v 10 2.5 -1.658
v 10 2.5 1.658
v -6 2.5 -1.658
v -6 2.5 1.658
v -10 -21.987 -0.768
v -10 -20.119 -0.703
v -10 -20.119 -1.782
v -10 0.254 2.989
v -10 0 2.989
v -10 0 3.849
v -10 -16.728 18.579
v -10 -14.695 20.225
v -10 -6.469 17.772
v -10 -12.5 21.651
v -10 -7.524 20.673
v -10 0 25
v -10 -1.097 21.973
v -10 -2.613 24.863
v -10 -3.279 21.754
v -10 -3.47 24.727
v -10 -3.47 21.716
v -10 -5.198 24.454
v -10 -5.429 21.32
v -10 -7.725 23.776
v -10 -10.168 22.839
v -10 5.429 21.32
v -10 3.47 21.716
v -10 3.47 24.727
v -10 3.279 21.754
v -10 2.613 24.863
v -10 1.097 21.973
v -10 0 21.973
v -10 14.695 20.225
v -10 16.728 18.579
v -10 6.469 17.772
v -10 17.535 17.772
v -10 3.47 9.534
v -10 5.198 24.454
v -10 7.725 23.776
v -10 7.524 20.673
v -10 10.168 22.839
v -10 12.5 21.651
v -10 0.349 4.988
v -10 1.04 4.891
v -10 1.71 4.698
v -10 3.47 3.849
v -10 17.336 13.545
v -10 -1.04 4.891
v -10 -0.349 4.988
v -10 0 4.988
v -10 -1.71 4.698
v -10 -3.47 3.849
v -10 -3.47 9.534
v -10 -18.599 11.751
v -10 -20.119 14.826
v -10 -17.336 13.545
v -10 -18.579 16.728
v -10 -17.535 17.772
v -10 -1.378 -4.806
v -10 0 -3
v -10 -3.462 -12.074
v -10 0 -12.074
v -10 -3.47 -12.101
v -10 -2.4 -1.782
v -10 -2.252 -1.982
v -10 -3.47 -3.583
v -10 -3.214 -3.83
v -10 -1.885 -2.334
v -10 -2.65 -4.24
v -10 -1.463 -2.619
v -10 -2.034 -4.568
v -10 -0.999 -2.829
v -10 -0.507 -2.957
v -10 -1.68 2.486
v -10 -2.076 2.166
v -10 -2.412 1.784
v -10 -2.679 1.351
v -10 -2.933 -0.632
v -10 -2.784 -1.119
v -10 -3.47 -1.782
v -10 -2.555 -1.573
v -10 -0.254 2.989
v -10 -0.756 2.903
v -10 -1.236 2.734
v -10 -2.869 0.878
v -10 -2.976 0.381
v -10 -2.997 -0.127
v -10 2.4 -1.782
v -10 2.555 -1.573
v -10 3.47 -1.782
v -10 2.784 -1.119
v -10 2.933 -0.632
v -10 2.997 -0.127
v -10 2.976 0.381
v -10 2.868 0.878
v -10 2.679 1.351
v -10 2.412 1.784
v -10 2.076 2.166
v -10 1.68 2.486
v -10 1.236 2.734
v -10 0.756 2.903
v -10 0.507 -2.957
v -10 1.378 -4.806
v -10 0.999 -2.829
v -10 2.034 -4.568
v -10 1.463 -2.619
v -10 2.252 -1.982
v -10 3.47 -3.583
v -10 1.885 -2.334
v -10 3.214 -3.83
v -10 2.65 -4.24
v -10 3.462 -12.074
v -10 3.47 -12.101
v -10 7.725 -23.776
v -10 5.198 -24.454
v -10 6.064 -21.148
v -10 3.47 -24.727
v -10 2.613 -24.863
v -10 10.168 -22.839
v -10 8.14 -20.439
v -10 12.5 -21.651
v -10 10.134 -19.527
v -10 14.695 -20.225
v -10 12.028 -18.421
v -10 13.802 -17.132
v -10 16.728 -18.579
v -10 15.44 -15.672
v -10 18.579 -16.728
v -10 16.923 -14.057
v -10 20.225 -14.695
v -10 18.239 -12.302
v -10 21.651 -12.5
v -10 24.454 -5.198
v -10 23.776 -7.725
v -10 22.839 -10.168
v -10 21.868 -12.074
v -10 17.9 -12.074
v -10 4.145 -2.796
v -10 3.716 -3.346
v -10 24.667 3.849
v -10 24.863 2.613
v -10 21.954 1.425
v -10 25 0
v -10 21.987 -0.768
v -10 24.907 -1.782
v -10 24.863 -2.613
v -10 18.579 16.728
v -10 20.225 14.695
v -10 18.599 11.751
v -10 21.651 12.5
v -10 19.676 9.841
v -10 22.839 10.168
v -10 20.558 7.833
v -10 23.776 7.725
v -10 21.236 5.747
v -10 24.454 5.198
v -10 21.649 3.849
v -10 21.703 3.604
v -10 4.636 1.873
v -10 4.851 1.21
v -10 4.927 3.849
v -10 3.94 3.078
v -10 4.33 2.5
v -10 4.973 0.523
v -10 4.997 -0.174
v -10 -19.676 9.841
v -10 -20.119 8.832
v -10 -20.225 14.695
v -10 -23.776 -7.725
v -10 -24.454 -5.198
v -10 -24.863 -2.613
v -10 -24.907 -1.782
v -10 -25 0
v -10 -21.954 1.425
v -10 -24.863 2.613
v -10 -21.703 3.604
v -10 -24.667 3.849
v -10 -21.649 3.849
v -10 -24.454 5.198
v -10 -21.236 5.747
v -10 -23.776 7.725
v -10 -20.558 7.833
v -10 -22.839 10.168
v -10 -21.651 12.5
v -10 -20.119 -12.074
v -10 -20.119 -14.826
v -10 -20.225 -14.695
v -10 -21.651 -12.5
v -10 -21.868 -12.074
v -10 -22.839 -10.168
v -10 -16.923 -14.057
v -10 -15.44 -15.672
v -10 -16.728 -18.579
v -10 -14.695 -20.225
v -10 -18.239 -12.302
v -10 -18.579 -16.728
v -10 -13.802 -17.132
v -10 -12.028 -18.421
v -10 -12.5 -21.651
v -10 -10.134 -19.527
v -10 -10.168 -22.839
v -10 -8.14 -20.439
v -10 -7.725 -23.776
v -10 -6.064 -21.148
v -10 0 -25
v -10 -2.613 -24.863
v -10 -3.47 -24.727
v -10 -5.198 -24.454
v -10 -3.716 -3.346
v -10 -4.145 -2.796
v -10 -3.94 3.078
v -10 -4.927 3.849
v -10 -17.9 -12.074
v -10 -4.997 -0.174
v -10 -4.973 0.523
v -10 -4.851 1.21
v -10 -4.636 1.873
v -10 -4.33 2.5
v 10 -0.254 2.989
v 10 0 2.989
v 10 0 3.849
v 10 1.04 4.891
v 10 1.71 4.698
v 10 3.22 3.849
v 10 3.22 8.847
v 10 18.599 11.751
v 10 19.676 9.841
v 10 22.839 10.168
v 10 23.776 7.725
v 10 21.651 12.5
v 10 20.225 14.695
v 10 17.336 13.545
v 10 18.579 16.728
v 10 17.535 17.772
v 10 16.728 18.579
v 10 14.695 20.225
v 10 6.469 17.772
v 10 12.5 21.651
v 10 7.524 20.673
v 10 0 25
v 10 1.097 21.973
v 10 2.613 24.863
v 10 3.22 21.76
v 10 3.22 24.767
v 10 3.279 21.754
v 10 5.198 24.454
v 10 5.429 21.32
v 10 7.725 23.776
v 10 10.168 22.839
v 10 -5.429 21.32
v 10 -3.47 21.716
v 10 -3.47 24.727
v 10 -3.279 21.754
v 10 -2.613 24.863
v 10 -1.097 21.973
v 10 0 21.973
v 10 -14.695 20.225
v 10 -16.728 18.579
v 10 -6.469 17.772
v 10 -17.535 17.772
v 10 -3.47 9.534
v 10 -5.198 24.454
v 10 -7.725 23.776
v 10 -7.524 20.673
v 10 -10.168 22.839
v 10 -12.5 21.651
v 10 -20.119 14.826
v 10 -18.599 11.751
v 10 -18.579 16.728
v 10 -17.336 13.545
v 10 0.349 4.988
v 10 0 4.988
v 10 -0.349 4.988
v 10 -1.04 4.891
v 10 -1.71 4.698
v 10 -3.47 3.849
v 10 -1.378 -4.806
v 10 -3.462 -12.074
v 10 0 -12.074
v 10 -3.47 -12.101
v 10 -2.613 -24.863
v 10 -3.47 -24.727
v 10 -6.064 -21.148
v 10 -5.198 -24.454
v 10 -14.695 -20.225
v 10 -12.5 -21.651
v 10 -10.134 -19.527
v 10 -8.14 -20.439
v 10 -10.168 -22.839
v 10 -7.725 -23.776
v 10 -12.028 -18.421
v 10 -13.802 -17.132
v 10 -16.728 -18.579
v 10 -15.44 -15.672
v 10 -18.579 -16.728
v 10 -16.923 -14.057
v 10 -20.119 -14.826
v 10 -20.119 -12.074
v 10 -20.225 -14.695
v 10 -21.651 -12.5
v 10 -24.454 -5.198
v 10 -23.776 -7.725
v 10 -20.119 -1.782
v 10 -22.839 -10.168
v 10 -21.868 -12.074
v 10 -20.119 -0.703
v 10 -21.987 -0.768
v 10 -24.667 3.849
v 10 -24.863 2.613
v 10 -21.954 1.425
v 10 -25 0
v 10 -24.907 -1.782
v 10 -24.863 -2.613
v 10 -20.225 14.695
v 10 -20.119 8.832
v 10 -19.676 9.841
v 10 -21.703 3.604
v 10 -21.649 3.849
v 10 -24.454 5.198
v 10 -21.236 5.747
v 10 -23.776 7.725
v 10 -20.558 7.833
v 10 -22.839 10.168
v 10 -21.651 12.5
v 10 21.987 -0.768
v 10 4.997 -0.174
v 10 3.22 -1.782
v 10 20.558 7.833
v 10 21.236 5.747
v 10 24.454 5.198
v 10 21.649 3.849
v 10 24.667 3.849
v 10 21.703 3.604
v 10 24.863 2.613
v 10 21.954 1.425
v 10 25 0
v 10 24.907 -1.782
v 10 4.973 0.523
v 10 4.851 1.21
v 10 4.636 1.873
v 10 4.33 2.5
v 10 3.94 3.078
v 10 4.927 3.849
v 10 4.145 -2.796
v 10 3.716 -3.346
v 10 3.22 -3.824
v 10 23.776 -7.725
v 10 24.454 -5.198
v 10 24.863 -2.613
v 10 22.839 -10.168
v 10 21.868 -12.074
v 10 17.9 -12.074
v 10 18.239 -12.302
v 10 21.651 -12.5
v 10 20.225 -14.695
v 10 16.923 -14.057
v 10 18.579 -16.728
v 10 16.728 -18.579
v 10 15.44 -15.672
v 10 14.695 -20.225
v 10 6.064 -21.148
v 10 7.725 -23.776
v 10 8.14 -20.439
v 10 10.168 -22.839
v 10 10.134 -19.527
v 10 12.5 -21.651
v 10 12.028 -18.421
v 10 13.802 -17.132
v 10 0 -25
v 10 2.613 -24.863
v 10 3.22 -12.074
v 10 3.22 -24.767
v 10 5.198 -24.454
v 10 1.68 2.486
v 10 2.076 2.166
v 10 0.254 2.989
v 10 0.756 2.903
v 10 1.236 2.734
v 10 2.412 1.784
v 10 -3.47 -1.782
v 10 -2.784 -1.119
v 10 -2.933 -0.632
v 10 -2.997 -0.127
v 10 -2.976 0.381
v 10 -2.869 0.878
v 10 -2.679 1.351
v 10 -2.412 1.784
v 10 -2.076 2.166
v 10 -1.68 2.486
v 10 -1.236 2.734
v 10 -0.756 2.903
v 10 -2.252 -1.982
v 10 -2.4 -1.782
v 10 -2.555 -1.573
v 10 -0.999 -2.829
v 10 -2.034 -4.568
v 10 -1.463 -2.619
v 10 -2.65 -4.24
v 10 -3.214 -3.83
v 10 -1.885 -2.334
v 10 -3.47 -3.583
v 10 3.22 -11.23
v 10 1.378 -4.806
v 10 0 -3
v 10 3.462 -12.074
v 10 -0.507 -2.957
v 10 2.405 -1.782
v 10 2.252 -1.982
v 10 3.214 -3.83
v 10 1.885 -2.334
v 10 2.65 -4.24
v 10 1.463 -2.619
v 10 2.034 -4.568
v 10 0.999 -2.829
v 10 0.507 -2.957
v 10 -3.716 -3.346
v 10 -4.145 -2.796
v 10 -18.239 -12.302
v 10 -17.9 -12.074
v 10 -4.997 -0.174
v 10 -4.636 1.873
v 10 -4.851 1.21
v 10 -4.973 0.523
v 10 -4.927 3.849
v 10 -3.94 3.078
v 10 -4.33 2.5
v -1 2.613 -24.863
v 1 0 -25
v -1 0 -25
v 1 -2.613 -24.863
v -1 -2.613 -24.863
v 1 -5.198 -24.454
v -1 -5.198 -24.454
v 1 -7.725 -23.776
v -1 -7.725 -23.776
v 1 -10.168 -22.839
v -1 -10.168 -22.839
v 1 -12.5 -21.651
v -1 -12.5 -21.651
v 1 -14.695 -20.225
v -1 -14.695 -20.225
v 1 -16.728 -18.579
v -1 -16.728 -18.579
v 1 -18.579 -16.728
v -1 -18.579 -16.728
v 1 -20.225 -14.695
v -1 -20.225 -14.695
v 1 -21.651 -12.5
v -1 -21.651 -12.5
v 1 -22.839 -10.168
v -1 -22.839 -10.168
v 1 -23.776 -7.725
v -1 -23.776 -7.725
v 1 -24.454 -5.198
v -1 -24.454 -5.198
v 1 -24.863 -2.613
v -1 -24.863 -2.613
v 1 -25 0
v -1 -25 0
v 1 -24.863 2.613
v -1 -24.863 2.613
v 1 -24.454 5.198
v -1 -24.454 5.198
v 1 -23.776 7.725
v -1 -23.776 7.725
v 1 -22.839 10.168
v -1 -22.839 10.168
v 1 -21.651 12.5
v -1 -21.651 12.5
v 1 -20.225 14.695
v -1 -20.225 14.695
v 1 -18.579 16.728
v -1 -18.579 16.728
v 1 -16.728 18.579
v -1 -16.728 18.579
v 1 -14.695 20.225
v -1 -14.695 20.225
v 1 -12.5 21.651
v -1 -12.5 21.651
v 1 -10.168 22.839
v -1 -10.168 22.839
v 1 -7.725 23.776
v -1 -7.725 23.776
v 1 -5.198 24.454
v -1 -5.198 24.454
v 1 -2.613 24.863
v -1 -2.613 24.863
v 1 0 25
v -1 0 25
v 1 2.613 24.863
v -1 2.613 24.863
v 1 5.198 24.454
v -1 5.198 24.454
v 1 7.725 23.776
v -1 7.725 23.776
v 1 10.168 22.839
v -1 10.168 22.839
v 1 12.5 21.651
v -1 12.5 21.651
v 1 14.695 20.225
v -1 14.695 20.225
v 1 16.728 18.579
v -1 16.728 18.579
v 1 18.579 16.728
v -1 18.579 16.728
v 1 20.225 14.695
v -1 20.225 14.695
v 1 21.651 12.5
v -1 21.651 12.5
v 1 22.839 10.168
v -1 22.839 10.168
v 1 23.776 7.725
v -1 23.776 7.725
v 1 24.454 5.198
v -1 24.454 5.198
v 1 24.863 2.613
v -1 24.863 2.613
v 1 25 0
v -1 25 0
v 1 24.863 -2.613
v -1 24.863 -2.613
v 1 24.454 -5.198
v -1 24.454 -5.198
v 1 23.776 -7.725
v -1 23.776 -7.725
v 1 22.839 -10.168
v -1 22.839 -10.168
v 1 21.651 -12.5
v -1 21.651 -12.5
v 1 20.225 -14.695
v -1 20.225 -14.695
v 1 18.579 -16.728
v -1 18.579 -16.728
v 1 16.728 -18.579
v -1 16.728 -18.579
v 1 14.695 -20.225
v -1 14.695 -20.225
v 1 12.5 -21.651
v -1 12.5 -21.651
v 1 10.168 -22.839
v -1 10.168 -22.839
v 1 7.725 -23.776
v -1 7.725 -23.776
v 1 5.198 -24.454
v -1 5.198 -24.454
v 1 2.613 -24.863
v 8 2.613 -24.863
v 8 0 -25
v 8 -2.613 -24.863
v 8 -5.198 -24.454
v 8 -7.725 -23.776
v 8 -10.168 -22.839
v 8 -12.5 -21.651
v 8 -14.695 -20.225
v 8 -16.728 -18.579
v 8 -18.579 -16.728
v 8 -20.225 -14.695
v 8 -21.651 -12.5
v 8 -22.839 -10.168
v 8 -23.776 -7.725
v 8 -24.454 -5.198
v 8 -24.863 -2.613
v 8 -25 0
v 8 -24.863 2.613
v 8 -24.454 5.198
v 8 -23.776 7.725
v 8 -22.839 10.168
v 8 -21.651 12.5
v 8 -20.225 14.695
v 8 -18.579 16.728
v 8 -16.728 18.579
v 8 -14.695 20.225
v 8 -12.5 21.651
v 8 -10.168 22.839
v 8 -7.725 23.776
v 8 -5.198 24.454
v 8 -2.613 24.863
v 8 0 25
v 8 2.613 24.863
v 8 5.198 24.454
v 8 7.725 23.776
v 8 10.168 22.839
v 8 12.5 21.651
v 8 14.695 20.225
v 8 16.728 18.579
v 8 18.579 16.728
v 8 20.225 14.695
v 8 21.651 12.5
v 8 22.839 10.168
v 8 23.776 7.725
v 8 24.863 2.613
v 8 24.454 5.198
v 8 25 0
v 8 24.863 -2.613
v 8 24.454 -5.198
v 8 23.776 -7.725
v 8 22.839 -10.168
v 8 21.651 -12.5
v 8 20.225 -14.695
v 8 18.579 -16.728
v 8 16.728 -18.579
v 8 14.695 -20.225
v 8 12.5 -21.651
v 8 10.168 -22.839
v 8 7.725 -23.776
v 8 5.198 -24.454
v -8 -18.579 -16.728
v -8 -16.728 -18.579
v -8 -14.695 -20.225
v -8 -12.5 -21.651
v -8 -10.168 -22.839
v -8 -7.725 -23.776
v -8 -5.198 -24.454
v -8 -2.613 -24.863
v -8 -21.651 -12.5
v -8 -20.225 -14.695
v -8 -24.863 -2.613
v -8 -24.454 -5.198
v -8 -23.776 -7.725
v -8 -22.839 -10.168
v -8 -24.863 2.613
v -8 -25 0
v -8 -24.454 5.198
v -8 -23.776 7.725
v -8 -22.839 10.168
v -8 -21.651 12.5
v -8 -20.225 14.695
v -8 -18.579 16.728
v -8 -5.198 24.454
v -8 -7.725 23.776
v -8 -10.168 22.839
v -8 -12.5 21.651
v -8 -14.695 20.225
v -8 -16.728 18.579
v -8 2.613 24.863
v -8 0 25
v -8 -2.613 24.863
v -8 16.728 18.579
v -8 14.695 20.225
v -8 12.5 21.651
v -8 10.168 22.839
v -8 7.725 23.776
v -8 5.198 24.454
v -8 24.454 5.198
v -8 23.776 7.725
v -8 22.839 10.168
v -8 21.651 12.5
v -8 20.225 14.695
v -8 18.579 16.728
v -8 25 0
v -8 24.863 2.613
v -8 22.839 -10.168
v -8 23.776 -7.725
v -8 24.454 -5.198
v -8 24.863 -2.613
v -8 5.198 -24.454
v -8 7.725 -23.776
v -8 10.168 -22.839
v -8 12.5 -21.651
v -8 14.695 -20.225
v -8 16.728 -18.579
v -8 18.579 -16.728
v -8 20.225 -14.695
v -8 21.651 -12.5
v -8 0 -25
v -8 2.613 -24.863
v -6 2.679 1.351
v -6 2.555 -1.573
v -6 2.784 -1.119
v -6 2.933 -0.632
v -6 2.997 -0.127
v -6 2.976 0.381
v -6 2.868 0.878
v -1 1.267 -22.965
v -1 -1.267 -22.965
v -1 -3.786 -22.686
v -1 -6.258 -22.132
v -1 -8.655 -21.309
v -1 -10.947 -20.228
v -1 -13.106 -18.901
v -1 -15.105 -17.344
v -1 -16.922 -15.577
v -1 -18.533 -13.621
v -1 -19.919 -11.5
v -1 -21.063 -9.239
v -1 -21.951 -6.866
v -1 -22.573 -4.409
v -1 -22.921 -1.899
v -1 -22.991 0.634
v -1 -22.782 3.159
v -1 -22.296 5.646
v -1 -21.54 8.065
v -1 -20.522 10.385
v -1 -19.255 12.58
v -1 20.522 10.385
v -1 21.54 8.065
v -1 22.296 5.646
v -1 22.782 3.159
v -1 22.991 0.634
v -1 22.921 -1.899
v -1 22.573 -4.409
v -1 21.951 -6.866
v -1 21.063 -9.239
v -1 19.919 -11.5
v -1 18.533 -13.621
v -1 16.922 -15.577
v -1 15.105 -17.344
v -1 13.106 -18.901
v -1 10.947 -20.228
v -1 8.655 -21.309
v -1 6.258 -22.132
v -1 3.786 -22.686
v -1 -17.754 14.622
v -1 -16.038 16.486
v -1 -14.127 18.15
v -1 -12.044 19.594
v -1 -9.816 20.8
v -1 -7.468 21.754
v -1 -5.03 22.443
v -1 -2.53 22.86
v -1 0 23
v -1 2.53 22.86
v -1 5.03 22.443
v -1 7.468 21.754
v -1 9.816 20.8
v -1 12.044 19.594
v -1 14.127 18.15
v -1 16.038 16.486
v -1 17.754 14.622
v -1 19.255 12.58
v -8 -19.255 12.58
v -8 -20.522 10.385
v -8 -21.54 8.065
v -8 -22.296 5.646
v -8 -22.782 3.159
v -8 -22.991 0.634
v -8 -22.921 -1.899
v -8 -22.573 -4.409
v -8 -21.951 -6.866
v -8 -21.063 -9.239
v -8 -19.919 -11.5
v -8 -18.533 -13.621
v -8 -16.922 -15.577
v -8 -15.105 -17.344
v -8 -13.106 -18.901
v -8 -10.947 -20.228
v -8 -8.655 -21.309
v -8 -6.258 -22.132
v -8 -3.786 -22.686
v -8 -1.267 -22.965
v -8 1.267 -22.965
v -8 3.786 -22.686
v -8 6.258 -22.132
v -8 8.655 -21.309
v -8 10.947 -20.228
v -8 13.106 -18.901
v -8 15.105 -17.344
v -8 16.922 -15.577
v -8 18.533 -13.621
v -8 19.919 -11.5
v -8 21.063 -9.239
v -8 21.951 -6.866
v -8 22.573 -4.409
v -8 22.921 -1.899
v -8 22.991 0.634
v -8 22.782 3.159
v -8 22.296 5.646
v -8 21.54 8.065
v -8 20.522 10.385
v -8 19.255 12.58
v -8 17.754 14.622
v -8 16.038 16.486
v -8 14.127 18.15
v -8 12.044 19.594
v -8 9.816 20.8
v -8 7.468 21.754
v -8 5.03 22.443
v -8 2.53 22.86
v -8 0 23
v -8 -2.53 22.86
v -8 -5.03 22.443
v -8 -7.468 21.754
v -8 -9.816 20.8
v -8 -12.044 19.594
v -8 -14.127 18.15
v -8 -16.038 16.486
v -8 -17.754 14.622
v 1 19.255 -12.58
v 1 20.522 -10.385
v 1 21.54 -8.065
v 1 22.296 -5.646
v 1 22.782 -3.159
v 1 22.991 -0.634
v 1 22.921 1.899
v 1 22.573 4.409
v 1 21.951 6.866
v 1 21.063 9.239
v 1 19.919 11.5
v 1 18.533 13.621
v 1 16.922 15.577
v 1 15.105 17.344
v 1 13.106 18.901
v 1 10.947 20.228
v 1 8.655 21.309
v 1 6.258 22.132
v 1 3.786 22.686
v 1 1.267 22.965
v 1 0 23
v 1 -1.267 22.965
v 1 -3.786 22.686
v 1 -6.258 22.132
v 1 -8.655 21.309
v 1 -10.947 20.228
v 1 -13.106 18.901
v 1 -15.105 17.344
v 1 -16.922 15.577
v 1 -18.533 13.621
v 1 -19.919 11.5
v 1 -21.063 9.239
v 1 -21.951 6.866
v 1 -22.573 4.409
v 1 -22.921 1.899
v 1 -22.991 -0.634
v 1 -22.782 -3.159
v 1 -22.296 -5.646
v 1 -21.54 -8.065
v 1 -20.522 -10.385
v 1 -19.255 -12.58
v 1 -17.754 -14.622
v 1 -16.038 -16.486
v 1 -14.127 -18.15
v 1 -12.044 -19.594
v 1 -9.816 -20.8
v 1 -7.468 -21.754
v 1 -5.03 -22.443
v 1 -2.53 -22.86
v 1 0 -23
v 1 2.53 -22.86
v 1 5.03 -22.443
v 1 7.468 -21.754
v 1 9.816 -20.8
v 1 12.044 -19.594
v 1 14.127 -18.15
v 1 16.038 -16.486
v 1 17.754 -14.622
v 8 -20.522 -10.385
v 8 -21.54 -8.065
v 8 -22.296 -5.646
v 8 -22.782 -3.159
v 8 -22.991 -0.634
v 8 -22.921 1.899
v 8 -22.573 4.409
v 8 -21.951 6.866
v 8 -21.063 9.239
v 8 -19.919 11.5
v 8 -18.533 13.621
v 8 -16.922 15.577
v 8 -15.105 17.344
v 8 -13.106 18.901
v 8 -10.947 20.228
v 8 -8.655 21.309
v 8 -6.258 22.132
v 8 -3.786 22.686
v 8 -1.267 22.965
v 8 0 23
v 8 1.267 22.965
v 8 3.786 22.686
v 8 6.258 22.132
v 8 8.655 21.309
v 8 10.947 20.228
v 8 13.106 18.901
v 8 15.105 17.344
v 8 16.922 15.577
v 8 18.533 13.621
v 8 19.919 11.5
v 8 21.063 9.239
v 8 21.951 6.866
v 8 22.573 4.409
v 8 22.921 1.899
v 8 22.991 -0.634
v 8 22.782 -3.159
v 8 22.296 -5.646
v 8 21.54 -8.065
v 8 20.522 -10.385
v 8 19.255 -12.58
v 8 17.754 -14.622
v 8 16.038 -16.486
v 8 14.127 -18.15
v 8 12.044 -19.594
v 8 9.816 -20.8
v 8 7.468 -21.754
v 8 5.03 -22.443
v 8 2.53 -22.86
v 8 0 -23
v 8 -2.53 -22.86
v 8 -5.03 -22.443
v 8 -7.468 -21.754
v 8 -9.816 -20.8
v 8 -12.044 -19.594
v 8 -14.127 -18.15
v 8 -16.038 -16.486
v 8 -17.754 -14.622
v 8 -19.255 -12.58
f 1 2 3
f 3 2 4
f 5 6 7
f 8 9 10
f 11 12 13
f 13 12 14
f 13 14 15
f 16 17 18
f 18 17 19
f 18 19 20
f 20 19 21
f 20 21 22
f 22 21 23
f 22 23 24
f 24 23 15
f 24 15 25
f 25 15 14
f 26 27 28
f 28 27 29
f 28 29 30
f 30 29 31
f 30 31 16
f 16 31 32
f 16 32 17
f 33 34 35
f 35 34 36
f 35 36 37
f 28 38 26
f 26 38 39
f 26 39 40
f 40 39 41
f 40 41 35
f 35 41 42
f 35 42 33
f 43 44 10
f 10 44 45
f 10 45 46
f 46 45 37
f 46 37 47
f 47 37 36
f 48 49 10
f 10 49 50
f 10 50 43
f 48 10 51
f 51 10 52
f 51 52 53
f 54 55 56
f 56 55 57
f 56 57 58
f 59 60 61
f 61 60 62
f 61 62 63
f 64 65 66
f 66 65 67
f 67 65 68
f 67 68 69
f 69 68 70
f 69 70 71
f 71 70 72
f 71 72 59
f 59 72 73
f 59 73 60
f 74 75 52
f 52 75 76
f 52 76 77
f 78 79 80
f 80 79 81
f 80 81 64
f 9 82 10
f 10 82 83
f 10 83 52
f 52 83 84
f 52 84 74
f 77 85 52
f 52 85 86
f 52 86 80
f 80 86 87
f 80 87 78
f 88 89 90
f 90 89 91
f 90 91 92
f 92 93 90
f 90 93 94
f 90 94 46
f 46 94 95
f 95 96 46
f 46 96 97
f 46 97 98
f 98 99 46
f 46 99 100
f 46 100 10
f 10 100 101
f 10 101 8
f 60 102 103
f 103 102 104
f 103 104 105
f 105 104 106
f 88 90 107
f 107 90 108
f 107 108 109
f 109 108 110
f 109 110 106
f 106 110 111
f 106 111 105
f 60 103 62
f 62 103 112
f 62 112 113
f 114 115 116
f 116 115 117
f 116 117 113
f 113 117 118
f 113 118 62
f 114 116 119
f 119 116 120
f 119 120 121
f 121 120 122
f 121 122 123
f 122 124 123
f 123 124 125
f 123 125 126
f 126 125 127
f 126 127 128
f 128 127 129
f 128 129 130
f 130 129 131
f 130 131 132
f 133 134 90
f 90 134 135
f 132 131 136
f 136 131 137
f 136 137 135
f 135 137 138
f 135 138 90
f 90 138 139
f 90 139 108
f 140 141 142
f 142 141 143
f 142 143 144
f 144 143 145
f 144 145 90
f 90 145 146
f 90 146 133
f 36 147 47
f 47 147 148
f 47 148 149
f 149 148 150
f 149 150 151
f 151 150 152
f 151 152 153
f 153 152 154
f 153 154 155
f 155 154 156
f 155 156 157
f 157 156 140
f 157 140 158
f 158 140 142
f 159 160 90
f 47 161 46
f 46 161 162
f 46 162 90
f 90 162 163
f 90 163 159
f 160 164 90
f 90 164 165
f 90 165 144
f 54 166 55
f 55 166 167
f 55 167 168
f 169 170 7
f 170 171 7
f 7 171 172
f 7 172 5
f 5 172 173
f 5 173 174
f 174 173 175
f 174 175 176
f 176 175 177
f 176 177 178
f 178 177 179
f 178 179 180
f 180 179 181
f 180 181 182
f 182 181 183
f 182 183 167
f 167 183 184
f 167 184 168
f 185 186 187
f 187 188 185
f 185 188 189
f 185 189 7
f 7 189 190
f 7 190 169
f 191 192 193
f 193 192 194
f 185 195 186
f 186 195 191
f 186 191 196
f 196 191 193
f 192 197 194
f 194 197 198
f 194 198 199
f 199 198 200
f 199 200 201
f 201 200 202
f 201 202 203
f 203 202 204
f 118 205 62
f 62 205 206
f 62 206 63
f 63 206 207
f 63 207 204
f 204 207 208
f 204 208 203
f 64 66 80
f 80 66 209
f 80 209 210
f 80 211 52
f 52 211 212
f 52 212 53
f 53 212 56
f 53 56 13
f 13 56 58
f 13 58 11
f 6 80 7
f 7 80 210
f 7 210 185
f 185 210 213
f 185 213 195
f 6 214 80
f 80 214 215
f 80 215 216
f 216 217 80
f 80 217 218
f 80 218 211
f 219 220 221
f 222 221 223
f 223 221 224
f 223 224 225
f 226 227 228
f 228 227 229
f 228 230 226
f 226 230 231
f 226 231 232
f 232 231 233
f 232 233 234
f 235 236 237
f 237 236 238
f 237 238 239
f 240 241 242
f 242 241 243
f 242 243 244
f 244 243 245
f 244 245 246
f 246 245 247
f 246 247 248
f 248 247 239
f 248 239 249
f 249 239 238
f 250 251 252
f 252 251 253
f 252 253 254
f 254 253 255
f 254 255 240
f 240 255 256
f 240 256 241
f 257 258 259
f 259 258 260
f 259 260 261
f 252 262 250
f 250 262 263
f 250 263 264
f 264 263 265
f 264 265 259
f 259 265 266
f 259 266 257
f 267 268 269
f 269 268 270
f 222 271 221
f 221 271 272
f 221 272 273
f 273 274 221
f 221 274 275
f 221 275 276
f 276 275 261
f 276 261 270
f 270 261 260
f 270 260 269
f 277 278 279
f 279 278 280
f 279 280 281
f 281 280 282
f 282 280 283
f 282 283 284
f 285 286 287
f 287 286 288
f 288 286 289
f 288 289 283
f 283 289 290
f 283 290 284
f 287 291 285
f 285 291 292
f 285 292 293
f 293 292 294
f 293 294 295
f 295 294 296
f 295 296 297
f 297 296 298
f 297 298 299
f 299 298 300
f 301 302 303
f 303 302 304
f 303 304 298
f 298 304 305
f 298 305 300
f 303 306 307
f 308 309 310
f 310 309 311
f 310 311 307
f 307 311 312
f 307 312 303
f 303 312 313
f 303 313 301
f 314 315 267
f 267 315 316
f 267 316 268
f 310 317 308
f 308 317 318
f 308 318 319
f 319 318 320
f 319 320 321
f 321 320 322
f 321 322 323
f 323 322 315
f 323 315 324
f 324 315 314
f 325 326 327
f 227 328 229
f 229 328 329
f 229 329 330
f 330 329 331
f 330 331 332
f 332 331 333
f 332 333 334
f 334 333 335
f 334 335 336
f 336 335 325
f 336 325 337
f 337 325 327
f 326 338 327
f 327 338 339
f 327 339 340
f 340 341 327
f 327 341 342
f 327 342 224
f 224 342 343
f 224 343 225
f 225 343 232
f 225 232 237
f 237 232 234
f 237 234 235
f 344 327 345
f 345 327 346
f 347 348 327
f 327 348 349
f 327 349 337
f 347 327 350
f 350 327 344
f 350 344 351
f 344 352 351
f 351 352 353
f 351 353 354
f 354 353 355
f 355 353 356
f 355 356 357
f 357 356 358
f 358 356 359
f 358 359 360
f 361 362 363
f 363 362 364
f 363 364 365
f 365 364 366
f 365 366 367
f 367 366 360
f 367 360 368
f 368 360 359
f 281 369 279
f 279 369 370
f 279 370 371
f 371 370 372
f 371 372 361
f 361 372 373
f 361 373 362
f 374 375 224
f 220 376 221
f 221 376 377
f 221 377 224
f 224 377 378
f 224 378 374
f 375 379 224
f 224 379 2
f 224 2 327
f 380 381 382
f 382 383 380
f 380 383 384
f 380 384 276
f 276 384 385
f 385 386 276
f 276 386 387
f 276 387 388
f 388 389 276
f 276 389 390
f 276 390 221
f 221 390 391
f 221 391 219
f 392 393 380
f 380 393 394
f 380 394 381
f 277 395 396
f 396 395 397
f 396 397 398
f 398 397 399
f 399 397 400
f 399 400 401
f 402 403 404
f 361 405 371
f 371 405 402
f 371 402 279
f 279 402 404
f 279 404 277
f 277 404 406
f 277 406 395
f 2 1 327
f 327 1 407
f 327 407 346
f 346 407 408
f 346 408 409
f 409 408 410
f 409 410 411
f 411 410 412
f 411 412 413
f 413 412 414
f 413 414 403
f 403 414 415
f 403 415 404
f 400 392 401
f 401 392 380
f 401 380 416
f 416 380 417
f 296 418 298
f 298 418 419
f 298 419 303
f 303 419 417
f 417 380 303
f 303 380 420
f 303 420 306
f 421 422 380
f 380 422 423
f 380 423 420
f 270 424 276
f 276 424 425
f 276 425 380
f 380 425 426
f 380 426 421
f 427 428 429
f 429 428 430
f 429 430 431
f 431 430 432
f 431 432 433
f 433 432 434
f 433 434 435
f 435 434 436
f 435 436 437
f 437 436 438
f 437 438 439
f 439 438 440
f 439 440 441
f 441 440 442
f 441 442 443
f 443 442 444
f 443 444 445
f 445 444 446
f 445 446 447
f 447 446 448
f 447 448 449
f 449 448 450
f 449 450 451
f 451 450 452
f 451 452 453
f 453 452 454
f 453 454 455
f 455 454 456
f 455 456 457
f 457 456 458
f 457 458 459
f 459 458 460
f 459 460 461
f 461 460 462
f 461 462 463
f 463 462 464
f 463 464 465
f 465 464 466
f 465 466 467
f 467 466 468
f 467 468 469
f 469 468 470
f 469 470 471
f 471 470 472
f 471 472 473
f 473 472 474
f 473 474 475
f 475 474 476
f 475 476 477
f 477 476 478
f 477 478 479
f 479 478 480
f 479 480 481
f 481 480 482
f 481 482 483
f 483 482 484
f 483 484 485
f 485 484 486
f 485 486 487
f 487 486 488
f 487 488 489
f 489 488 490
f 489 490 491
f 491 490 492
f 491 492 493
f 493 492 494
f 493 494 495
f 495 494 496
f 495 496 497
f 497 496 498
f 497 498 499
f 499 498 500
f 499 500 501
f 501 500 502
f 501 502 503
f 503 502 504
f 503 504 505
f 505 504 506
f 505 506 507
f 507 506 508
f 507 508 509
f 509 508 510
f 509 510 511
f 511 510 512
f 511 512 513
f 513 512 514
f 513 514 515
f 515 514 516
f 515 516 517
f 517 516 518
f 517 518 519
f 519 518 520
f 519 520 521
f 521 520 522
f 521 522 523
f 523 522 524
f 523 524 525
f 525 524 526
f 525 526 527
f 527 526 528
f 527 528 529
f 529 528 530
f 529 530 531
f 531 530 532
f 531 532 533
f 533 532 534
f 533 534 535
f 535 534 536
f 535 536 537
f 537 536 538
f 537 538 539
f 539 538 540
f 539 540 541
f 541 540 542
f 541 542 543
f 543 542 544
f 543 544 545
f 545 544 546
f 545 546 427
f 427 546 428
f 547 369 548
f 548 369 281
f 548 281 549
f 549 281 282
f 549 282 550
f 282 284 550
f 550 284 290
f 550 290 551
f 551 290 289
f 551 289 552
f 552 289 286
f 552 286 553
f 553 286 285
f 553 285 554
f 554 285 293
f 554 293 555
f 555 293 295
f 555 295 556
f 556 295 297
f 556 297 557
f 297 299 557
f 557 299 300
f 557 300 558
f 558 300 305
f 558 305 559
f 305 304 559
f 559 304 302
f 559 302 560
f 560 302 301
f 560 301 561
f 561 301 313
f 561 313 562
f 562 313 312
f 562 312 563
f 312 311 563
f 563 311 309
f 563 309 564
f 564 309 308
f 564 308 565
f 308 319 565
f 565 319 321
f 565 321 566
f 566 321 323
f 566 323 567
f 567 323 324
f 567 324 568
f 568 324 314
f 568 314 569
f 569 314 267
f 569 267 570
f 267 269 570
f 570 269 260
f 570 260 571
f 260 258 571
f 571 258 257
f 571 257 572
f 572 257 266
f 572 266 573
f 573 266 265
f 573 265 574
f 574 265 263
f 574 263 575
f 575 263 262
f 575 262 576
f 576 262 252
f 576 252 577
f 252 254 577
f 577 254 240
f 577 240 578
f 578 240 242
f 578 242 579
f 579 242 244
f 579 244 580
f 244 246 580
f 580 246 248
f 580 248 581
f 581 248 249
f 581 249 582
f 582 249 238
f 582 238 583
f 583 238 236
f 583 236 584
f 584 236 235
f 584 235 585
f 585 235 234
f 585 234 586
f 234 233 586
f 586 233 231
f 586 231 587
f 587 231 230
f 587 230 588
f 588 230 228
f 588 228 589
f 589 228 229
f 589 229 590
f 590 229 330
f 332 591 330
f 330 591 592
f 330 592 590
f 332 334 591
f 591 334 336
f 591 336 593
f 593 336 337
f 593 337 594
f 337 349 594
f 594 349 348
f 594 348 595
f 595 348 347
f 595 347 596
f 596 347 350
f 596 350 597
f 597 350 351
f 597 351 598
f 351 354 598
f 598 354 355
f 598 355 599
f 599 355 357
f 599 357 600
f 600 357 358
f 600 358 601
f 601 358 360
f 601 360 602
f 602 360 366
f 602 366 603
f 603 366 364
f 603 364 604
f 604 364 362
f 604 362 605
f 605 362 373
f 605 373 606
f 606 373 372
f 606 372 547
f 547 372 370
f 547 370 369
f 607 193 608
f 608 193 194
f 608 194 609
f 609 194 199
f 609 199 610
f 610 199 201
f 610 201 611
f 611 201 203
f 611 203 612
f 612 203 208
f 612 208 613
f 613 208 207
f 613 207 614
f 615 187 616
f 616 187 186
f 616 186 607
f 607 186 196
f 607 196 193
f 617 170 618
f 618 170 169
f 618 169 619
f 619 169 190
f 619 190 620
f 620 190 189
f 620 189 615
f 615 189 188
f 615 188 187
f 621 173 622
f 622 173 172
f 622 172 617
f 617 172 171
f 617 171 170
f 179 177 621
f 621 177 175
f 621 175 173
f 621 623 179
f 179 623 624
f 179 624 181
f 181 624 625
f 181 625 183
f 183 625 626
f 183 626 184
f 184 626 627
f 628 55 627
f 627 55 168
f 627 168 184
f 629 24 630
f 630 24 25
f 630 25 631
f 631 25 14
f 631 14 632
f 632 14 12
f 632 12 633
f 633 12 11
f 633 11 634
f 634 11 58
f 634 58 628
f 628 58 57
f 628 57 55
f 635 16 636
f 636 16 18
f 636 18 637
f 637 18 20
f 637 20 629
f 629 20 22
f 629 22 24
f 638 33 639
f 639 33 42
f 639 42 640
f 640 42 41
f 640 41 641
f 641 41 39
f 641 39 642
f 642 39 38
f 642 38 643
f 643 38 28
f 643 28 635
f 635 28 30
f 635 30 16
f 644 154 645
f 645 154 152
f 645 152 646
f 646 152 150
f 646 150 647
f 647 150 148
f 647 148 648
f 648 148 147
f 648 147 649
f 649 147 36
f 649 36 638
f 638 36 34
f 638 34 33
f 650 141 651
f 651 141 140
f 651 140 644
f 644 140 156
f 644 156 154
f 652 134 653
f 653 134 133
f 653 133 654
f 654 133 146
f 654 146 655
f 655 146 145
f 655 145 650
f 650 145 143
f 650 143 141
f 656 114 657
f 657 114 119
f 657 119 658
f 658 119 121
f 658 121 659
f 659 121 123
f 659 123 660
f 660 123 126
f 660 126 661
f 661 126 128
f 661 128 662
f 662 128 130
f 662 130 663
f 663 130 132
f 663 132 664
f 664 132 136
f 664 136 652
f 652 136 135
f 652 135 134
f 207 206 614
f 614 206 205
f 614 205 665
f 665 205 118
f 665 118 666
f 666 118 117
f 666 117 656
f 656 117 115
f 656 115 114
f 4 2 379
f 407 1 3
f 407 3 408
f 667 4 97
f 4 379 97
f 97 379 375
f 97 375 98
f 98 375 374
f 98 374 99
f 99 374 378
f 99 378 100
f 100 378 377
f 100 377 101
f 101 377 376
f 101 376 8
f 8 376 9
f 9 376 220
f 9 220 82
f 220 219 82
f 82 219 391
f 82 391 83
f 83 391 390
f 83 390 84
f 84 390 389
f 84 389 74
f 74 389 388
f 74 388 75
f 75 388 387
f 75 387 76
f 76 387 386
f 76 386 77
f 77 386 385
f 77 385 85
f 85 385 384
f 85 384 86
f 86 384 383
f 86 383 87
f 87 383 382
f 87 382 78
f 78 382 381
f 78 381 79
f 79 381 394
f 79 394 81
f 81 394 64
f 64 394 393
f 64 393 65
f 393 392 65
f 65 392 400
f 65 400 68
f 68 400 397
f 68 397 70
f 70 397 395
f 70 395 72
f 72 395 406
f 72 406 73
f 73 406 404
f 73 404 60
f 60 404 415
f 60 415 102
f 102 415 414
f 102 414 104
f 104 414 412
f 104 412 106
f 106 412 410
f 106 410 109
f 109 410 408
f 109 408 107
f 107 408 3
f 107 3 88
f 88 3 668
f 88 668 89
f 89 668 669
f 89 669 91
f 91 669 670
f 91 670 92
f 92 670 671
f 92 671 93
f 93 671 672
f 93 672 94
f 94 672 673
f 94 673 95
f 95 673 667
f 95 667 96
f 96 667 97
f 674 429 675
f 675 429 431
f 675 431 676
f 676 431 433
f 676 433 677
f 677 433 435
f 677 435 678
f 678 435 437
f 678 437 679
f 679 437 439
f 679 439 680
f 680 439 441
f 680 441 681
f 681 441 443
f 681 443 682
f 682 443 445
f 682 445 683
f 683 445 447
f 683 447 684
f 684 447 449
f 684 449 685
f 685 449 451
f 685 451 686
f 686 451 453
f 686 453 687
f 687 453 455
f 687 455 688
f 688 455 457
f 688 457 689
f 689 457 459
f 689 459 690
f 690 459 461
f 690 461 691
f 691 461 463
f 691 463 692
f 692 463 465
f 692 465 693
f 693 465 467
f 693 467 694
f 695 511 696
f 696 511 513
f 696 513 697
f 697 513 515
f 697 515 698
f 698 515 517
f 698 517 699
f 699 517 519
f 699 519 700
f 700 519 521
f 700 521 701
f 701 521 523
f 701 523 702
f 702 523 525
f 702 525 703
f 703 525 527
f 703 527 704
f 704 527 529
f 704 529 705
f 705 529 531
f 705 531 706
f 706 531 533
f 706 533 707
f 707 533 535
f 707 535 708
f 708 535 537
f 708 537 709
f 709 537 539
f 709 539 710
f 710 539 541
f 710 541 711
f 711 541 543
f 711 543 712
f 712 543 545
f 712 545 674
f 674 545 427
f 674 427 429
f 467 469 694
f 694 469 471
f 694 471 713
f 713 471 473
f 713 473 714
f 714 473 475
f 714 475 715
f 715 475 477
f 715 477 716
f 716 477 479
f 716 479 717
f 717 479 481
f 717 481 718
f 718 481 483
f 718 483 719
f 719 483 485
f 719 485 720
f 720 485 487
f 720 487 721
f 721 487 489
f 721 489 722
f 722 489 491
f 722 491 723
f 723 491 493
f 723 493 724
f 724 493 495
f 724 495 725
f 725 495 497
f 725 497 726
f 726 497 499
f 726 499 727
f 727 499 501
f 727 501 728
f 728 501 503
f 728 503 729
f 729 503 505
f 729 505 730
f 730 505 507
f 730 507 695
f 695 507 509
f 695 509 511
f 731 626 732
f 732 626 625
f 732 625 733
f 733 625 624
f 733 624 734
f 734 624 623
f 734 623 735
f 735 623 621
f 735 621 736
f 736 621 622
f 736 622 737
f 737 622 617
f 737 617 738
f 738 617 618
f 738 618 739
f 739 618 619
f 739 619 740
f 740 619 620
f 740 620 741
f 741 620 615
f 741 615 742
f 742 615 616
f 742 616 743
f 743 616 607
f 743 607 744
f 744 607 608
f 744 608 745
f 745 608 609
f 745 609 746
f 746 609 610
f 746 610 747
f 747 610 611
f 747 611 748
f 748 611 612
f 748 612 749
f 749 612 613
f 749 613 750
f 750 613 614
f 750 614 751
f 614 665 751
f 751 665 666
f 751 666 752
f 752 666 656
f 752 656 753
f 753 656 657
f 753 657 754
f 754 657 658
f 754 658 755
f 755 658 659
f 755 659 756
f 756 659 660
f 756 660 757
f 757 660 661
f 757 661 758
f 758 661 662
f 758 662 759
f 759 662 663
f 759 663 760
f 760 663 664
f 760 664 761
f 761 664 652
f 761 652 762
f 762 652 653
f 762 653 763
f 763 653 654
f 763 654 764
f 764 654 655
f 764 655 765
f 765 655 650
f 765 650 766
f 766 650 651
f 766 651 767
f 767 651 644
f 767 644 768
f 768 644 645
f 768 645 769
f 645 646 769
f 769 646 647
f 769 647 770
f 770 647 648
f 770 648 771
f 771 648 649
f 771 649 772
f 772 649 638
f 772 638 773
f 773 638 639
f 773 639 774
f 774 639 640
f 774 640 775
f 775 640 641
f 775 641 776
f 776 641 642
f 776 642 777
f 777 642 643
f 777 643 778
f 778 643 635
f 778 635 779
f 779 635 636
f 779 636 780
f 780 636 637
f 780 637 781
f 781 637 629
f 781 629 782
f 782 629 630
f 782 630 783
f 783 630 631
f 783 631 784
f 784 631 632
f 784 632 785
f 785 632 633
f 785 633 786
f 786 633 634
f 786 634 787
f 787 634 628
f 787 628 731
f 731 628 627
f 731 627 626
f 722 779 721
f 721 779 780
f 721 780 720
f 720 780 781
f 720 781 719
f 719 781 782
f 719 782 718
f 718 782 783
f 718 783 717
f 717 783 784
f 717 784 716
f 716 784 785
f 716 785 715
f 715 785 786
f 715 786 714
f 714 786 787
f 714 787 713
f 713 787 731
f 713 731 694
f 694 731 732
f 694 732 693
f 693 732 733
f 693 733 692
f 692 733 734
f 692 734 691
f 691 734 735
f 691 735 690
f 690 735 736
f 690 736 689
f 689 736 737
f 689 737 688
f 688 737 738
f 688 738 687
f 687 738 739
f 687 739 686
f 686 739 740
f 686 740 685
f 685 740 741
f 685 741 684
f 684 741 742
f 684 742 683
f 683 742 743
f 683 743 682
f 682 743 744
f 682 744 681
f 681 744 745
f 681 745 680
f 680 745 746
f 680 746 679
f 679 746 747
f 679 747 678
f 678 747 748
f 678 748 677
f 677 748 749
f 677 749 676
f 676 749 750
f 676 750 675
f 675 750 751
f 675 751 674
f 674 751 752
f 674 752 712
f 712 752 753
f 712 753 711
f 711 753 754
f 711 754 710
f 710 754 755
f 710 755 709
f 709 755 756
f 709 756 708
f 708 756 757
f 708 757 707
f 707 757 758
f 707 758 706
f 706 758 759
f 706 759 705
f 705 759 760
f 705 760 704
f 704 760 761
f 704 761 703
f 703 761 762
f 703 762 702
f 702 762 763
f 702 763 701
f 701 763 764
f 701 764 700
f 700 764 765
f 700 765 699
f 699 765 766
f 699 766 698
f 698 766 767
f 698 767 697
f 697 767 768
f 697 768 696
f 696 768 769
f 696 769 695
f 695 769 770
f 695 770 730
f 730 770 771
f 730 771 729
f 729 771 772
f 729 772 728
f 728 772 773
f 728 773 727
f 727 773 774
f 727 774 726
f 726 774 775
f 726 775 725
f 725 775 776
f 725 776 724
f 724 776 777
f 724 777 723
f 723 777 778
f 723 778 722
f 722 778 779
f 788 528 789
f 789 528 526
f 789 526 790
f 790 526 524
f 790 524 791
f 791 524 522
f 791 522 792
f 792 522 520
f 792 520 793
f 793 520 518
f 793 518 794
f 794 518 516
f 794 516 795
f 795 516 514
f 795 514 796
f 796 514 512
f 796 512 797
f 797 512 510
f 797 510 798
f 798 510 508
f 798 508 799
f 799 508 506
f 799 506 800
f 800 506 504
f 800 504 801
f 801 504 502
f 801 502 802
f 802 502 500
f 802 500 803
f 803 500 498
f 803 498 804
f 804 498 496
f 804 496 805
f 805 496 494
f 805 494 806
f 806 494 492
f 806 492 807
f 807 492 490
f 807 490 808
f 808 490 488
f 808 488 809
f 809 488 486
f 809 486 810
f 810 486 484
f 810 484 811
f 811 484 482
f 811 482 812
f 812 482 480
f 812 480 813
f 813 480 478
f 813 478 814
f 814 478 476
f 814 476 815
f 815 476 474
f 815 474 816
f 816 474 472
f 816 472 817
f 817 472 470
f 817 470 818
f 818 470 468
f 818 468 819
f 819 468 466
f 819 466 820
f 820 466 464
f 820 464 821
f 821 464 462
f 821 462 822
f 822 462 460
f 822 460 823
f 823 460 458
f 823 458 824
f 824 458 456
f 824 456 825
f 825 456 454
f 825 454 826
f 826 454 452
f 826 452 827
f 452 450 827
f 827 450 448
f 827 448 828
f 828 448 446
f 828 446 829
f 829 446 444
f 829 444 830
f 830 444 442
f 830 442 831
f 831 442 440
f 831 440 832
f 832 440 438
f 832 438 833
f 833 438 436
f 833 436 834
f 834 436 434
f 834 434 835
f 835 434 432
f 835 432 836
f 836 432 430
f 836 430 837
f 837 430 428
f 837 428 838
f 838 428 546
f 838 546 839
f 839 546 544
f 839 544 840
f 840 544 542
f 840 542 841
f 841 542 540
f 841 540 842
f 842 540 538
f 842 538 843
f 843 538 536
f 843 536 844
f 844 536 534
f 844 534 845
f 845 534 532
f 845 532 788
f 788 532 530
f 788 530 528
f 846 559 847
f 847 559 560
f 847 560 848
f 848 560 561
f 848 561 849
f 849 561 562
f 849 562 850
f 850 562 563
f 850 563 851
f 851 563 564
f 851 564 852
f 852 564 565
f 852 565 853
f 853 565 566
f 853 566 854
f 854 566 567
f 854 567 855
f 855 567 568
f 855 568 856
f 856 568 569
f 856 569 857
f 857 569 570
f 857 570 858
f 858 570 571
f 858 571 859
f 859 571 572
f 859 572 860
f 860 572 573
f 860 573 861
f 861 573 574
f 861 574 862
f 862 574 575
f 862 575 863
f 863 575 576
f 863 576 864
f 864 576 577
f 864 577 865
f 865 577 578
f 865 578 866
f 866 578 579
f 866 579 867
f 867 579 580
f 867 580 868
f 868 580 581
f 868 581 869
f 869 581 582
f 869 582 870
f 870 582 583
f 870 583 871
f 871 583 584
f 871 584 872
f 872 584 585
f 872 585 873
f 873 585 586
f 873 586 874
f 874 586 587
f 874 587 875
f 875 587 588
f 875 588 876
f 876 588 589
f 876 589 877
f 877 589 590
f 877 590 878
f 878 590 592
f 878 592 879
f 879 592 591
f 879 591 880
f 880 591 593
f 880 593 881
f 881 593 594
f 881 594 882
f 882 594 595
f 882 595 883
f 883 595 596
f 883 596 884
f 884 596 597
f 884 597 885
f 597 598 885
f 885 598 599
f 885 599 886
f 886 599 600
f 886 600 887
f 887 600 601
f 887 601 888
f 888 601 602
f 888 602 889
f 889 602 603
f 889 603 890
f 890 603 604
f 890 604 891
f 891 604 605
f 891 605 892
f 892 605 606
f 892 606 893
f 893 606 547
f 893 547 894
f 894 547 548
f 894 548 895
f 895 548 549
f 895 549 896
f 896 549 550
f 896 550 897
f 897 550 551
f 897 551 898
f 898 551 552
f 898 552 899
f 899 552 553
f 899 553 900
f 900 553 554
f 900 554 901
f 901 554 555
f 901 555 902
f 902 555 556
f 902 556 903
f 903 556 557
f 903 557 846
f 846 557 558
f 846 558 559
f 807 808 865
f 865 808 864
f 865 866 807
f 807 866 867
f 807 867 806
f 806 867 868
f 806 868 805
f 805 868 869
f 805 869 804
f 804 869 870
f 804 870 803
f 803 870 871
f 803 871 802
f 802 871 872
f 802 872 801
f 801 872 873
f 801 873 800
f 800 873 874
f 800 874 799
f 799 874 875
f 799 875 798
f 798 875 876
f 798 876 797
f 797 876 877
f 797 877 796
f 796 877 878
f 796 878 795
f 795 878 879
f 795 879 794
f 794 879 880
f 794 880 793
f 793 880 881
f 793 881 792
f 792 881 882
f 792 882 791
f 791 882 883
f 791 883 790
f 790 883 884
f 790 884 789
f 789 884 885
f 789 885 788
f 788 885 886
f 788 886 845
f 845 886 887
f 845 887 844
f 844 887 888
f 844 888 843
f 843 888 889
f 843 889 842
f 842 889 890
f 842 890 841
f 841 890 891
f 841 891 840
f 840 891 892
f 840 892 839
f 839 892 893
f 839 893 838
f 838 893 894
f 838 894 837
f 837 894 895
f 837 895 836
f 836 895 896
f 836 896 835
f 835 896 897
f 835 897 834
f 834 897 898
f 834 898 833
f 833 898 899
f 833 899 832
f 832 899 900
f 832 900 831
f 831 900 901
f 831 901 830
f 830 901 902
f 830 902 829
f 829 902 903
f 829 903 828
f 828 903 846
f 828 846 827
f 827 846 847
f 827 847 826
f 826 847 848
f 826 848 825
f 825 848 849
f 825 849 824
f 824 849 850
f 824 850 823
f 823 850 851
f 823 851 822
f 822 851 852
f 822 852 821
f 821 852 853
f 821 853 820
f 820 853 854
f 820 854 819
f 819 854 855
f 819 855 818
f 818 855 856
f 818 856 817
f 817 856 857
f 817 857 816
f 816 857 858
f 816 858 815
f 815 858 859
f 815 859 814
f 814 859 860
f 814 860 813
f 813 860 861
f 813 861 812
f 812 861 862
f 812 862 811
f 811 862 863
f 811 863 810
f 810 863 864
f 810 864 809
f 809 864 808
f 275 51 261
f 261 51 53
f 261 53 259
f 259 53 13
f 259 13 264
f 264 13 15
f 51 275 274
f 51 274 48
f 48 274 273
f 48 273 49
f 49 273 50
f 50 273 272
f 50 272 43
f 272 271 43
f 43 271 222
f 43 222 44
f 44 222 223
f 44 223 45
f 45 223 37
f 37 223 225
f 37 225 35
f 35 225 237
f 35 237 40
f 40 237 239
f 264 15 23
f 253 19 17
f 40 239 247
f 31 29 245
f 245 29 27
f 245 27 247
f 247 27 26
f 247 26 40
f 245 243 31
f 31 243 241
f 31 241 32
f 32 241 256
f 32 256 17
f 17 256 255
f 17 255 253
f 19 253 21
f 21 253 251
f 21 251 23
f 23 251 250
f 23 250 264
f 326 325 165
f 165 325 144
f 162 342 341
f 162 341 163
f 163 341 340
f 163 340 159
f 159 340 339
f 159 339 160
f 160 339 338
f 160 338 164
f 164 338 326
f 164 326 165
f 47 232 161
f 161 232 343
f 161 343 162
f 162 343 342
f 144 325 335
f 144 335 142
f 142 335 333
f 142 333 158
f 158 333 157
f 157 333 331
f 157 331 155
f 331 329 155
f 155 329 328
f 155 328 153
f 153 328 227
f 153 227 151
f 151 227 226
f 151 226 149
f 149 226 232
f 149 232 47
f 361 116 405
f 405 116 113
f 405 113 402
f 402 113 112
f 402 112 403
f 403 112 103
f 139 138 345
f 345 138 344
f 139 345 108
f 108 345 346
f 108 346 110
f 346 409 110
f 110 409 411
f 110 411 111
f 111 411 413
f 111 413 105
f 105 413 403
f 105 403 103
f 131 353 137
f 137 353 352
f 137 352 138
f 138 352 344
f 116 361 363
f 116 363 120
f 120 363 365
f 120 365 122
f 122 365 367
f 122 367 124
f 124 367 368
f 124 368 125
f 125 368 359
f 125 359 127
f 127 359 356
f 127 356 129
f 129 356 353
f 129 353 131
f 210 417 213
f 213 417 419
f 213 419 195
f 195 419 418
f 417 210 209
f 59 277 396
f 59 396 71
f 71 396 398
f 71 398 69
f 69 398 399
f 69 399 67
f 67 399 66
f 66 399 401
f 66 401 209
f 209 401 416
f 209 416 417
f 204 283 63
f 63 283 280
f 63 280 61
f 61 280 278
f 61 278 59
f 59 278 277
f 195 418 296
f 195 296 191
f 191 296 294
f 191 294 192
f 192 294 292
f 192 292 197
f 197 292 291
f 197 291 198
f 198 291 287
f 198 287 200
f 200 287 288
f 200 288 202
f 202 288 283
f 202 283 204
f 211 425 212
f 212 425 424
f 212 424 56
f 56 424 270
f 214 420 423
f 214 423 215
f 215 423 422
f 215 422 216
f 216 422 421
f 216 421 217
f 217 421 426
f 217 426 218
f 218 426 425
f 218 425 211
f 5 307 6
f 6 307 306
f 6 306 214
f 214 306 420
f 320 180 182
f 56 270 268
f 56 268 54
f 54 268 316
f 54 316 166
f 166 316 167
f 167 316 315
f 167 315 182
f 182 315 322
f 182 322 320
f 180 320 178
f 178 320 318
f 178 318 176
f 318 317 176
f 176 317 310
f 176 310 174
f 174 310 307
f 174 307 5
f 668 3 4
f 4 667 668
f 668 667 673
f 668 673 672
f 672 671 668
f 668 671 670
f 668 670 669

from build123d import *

# Parameters (mm, degrees)
BASE_DEPTH          = 10
BASE_DEPTH_BACK     = 10
ESQUISSE1_R         = 25
ESQUISSE2_R         = 25
ESQUISSE2_R_2       = 23
VIDE_GORGE_DEPTH    = 7
VIDE_JANTE_DEPTH    = 20
ESQUISSE6_R         = 3
VIDE_BLOC_AXE_DEPTH = 4


with BuildPart() as part:
    # Esquisse1 → BASE (new, two sides: drawn at the far end of the back side and taken through both)
    with BuildSketch(Plane(origin=(0, 0, 0), x_dir=(0, 0, -1), z_dir=(1, 0, 0)).offset(-BASE_DEPTH_BACK)):
        Circle(ESQUISSE1_R)
        with BuildLine():
            Line((-1.658312395, 2.5), (1.658312395, 2.5))
            ThreePointArc((1.658312395, 2.5), (0, -3), (-1.658312395, 2.5))
        make_face(mode=Mode.SUBTRACT)
    extrude(amount=BASE_DEPTH + BASE_DEPTH_BACK)

    # Esquisse2 → VIDE GORGE (cut)
    with BuildSketch(Plane.ZY.offset(8)):
        with Locations(Location((0, 0, 0), (0, 0, 180))):
            Circle(ESQUISSE2_R)
        Circle(ESQUISSE2_R_2, mode=Mode.SUBTRACT)
    vide_gorge = extrude(amount=-VIDE_GORGE_DEPTH, mode=Mode.SUBTRACT)

    # SYM GORGE: VIDE GORGE across plane
    add(vide_gorge.mirror(Plane(origin=(0, 0, 0), x_dir=(0, 0, 1), z_dir=(1, 0, 0))), mode=Mode.SUBTRACT)

    # Esquisse4 → VIDE JANTE (cut)
    with BuildSketch(Plane(origin=(10, 0, 0), x_dir=(0, 0, -1), z_dir=(1, 0, 0))):
        with BuildLine():
            Line((-22, 0), (-5, 0))
            ThreePointArc((-5, 0), (-4.924038765, 0.868240888), (-4.698463104, 1.710100717))
            Line((-4.698463104, 1.710100717), (-20.673237657, 7.524443153))
            ThreePointArc((-20.673237657, 7.524443153), (-21.665770566, 3.820259909), (-22, 0))
        make_face()
        with BuildLine():
            ThreePointArc((-4.698463104, -1.710100717), (-4.924038765, -0.868240888), (-5, 0))
            Line((-5, 0), (-22, 0))
            ThreePointArc((-22, 0), (-21.665770566, -3.820259909), (-20.673237657, -7.524443153))
            Line((-20.673237657, -7.524443153), (-4.698463104, -1.710100717))
        make_face()
        with BuildLine():
            Line((-13.544552457, 17.336236579), (-3.078307377, 3.940053768))
            ThreePointArc((-3.078307377, 3.940053768), (-1.545084972, 4.755282581), (0.174497484, 4.996954135))
            Line((0.174497484, 4.996954135), (0.767788927, 21.986598194))
            ThreePointArc((0.767788927, 21.986598194), (-6.798373876, 20.923243358), (-13.544552457, 17.336236579))
        make_face()
        with BuildLine():
            Line((12.302243876, 18.238826596), (2.795964517, 4.145187863))
            ThreePointArc((2.795964517, 4.145187863), (4.045084972, 2.938926261), (4.80630848, 1.378186779))
            Line((4.80630848, 1.378186779), (21.147757311, 6.064021828))
            ThreePointArc((21.147757311, 6.064021828), (17.798373876, 12.93127555), (12.302243876, 18.238826596))
        make_face()
        with BuildLine():
            ThreePointArc((4.80630848, -1.378186779), (4.045084972, -2.938926261), (2.795964517, -4.145187863))
            Line((2.795964517, -4.145187863), (12.302243876, -18.238826596))
            ThreePointArc((12.302243876, -18.238826596), (17.798373876, -12.93127555), (21.147757311, -6.064021828))
            Line((21.147757311, -6.064021828), (4.80630848, -1.378186779))
        make_face()
        with BuildLine():
            ThreePointArc((0.174497484, -4.996954135), (-1.545084972, -4.755282581), (-3.078307377, -3.940053768))
            Line((-3.078307377, -3.940053768), (-13.544552457, -17.336236579))
            ThreePointArc((-13.544552457, -17.336236579), (-6.798373876, -20.923243358), (0.767788927, -21.986598194))
            Line((0.767788927, -21.986598194), (0.174497484, -4.996954135))
        make_face()
    extrude(amount=-VIDE_JANTE_DEPTH, mode=Mode.SUBTRACT)

    # Esquisse6 → VIDE BLOC AXE (cut)
    with BuildSketch(Plane.ZY.offset(10)):
        with Locations(Location((0, 0, 0), (0, 0, 180))):
            Circle(ESQUISSE6_R)
    extrude(amount=-VIDE_BLOC_AXE_DEPTH, mode=Mode.SUBTRACT)


solid = part.part
